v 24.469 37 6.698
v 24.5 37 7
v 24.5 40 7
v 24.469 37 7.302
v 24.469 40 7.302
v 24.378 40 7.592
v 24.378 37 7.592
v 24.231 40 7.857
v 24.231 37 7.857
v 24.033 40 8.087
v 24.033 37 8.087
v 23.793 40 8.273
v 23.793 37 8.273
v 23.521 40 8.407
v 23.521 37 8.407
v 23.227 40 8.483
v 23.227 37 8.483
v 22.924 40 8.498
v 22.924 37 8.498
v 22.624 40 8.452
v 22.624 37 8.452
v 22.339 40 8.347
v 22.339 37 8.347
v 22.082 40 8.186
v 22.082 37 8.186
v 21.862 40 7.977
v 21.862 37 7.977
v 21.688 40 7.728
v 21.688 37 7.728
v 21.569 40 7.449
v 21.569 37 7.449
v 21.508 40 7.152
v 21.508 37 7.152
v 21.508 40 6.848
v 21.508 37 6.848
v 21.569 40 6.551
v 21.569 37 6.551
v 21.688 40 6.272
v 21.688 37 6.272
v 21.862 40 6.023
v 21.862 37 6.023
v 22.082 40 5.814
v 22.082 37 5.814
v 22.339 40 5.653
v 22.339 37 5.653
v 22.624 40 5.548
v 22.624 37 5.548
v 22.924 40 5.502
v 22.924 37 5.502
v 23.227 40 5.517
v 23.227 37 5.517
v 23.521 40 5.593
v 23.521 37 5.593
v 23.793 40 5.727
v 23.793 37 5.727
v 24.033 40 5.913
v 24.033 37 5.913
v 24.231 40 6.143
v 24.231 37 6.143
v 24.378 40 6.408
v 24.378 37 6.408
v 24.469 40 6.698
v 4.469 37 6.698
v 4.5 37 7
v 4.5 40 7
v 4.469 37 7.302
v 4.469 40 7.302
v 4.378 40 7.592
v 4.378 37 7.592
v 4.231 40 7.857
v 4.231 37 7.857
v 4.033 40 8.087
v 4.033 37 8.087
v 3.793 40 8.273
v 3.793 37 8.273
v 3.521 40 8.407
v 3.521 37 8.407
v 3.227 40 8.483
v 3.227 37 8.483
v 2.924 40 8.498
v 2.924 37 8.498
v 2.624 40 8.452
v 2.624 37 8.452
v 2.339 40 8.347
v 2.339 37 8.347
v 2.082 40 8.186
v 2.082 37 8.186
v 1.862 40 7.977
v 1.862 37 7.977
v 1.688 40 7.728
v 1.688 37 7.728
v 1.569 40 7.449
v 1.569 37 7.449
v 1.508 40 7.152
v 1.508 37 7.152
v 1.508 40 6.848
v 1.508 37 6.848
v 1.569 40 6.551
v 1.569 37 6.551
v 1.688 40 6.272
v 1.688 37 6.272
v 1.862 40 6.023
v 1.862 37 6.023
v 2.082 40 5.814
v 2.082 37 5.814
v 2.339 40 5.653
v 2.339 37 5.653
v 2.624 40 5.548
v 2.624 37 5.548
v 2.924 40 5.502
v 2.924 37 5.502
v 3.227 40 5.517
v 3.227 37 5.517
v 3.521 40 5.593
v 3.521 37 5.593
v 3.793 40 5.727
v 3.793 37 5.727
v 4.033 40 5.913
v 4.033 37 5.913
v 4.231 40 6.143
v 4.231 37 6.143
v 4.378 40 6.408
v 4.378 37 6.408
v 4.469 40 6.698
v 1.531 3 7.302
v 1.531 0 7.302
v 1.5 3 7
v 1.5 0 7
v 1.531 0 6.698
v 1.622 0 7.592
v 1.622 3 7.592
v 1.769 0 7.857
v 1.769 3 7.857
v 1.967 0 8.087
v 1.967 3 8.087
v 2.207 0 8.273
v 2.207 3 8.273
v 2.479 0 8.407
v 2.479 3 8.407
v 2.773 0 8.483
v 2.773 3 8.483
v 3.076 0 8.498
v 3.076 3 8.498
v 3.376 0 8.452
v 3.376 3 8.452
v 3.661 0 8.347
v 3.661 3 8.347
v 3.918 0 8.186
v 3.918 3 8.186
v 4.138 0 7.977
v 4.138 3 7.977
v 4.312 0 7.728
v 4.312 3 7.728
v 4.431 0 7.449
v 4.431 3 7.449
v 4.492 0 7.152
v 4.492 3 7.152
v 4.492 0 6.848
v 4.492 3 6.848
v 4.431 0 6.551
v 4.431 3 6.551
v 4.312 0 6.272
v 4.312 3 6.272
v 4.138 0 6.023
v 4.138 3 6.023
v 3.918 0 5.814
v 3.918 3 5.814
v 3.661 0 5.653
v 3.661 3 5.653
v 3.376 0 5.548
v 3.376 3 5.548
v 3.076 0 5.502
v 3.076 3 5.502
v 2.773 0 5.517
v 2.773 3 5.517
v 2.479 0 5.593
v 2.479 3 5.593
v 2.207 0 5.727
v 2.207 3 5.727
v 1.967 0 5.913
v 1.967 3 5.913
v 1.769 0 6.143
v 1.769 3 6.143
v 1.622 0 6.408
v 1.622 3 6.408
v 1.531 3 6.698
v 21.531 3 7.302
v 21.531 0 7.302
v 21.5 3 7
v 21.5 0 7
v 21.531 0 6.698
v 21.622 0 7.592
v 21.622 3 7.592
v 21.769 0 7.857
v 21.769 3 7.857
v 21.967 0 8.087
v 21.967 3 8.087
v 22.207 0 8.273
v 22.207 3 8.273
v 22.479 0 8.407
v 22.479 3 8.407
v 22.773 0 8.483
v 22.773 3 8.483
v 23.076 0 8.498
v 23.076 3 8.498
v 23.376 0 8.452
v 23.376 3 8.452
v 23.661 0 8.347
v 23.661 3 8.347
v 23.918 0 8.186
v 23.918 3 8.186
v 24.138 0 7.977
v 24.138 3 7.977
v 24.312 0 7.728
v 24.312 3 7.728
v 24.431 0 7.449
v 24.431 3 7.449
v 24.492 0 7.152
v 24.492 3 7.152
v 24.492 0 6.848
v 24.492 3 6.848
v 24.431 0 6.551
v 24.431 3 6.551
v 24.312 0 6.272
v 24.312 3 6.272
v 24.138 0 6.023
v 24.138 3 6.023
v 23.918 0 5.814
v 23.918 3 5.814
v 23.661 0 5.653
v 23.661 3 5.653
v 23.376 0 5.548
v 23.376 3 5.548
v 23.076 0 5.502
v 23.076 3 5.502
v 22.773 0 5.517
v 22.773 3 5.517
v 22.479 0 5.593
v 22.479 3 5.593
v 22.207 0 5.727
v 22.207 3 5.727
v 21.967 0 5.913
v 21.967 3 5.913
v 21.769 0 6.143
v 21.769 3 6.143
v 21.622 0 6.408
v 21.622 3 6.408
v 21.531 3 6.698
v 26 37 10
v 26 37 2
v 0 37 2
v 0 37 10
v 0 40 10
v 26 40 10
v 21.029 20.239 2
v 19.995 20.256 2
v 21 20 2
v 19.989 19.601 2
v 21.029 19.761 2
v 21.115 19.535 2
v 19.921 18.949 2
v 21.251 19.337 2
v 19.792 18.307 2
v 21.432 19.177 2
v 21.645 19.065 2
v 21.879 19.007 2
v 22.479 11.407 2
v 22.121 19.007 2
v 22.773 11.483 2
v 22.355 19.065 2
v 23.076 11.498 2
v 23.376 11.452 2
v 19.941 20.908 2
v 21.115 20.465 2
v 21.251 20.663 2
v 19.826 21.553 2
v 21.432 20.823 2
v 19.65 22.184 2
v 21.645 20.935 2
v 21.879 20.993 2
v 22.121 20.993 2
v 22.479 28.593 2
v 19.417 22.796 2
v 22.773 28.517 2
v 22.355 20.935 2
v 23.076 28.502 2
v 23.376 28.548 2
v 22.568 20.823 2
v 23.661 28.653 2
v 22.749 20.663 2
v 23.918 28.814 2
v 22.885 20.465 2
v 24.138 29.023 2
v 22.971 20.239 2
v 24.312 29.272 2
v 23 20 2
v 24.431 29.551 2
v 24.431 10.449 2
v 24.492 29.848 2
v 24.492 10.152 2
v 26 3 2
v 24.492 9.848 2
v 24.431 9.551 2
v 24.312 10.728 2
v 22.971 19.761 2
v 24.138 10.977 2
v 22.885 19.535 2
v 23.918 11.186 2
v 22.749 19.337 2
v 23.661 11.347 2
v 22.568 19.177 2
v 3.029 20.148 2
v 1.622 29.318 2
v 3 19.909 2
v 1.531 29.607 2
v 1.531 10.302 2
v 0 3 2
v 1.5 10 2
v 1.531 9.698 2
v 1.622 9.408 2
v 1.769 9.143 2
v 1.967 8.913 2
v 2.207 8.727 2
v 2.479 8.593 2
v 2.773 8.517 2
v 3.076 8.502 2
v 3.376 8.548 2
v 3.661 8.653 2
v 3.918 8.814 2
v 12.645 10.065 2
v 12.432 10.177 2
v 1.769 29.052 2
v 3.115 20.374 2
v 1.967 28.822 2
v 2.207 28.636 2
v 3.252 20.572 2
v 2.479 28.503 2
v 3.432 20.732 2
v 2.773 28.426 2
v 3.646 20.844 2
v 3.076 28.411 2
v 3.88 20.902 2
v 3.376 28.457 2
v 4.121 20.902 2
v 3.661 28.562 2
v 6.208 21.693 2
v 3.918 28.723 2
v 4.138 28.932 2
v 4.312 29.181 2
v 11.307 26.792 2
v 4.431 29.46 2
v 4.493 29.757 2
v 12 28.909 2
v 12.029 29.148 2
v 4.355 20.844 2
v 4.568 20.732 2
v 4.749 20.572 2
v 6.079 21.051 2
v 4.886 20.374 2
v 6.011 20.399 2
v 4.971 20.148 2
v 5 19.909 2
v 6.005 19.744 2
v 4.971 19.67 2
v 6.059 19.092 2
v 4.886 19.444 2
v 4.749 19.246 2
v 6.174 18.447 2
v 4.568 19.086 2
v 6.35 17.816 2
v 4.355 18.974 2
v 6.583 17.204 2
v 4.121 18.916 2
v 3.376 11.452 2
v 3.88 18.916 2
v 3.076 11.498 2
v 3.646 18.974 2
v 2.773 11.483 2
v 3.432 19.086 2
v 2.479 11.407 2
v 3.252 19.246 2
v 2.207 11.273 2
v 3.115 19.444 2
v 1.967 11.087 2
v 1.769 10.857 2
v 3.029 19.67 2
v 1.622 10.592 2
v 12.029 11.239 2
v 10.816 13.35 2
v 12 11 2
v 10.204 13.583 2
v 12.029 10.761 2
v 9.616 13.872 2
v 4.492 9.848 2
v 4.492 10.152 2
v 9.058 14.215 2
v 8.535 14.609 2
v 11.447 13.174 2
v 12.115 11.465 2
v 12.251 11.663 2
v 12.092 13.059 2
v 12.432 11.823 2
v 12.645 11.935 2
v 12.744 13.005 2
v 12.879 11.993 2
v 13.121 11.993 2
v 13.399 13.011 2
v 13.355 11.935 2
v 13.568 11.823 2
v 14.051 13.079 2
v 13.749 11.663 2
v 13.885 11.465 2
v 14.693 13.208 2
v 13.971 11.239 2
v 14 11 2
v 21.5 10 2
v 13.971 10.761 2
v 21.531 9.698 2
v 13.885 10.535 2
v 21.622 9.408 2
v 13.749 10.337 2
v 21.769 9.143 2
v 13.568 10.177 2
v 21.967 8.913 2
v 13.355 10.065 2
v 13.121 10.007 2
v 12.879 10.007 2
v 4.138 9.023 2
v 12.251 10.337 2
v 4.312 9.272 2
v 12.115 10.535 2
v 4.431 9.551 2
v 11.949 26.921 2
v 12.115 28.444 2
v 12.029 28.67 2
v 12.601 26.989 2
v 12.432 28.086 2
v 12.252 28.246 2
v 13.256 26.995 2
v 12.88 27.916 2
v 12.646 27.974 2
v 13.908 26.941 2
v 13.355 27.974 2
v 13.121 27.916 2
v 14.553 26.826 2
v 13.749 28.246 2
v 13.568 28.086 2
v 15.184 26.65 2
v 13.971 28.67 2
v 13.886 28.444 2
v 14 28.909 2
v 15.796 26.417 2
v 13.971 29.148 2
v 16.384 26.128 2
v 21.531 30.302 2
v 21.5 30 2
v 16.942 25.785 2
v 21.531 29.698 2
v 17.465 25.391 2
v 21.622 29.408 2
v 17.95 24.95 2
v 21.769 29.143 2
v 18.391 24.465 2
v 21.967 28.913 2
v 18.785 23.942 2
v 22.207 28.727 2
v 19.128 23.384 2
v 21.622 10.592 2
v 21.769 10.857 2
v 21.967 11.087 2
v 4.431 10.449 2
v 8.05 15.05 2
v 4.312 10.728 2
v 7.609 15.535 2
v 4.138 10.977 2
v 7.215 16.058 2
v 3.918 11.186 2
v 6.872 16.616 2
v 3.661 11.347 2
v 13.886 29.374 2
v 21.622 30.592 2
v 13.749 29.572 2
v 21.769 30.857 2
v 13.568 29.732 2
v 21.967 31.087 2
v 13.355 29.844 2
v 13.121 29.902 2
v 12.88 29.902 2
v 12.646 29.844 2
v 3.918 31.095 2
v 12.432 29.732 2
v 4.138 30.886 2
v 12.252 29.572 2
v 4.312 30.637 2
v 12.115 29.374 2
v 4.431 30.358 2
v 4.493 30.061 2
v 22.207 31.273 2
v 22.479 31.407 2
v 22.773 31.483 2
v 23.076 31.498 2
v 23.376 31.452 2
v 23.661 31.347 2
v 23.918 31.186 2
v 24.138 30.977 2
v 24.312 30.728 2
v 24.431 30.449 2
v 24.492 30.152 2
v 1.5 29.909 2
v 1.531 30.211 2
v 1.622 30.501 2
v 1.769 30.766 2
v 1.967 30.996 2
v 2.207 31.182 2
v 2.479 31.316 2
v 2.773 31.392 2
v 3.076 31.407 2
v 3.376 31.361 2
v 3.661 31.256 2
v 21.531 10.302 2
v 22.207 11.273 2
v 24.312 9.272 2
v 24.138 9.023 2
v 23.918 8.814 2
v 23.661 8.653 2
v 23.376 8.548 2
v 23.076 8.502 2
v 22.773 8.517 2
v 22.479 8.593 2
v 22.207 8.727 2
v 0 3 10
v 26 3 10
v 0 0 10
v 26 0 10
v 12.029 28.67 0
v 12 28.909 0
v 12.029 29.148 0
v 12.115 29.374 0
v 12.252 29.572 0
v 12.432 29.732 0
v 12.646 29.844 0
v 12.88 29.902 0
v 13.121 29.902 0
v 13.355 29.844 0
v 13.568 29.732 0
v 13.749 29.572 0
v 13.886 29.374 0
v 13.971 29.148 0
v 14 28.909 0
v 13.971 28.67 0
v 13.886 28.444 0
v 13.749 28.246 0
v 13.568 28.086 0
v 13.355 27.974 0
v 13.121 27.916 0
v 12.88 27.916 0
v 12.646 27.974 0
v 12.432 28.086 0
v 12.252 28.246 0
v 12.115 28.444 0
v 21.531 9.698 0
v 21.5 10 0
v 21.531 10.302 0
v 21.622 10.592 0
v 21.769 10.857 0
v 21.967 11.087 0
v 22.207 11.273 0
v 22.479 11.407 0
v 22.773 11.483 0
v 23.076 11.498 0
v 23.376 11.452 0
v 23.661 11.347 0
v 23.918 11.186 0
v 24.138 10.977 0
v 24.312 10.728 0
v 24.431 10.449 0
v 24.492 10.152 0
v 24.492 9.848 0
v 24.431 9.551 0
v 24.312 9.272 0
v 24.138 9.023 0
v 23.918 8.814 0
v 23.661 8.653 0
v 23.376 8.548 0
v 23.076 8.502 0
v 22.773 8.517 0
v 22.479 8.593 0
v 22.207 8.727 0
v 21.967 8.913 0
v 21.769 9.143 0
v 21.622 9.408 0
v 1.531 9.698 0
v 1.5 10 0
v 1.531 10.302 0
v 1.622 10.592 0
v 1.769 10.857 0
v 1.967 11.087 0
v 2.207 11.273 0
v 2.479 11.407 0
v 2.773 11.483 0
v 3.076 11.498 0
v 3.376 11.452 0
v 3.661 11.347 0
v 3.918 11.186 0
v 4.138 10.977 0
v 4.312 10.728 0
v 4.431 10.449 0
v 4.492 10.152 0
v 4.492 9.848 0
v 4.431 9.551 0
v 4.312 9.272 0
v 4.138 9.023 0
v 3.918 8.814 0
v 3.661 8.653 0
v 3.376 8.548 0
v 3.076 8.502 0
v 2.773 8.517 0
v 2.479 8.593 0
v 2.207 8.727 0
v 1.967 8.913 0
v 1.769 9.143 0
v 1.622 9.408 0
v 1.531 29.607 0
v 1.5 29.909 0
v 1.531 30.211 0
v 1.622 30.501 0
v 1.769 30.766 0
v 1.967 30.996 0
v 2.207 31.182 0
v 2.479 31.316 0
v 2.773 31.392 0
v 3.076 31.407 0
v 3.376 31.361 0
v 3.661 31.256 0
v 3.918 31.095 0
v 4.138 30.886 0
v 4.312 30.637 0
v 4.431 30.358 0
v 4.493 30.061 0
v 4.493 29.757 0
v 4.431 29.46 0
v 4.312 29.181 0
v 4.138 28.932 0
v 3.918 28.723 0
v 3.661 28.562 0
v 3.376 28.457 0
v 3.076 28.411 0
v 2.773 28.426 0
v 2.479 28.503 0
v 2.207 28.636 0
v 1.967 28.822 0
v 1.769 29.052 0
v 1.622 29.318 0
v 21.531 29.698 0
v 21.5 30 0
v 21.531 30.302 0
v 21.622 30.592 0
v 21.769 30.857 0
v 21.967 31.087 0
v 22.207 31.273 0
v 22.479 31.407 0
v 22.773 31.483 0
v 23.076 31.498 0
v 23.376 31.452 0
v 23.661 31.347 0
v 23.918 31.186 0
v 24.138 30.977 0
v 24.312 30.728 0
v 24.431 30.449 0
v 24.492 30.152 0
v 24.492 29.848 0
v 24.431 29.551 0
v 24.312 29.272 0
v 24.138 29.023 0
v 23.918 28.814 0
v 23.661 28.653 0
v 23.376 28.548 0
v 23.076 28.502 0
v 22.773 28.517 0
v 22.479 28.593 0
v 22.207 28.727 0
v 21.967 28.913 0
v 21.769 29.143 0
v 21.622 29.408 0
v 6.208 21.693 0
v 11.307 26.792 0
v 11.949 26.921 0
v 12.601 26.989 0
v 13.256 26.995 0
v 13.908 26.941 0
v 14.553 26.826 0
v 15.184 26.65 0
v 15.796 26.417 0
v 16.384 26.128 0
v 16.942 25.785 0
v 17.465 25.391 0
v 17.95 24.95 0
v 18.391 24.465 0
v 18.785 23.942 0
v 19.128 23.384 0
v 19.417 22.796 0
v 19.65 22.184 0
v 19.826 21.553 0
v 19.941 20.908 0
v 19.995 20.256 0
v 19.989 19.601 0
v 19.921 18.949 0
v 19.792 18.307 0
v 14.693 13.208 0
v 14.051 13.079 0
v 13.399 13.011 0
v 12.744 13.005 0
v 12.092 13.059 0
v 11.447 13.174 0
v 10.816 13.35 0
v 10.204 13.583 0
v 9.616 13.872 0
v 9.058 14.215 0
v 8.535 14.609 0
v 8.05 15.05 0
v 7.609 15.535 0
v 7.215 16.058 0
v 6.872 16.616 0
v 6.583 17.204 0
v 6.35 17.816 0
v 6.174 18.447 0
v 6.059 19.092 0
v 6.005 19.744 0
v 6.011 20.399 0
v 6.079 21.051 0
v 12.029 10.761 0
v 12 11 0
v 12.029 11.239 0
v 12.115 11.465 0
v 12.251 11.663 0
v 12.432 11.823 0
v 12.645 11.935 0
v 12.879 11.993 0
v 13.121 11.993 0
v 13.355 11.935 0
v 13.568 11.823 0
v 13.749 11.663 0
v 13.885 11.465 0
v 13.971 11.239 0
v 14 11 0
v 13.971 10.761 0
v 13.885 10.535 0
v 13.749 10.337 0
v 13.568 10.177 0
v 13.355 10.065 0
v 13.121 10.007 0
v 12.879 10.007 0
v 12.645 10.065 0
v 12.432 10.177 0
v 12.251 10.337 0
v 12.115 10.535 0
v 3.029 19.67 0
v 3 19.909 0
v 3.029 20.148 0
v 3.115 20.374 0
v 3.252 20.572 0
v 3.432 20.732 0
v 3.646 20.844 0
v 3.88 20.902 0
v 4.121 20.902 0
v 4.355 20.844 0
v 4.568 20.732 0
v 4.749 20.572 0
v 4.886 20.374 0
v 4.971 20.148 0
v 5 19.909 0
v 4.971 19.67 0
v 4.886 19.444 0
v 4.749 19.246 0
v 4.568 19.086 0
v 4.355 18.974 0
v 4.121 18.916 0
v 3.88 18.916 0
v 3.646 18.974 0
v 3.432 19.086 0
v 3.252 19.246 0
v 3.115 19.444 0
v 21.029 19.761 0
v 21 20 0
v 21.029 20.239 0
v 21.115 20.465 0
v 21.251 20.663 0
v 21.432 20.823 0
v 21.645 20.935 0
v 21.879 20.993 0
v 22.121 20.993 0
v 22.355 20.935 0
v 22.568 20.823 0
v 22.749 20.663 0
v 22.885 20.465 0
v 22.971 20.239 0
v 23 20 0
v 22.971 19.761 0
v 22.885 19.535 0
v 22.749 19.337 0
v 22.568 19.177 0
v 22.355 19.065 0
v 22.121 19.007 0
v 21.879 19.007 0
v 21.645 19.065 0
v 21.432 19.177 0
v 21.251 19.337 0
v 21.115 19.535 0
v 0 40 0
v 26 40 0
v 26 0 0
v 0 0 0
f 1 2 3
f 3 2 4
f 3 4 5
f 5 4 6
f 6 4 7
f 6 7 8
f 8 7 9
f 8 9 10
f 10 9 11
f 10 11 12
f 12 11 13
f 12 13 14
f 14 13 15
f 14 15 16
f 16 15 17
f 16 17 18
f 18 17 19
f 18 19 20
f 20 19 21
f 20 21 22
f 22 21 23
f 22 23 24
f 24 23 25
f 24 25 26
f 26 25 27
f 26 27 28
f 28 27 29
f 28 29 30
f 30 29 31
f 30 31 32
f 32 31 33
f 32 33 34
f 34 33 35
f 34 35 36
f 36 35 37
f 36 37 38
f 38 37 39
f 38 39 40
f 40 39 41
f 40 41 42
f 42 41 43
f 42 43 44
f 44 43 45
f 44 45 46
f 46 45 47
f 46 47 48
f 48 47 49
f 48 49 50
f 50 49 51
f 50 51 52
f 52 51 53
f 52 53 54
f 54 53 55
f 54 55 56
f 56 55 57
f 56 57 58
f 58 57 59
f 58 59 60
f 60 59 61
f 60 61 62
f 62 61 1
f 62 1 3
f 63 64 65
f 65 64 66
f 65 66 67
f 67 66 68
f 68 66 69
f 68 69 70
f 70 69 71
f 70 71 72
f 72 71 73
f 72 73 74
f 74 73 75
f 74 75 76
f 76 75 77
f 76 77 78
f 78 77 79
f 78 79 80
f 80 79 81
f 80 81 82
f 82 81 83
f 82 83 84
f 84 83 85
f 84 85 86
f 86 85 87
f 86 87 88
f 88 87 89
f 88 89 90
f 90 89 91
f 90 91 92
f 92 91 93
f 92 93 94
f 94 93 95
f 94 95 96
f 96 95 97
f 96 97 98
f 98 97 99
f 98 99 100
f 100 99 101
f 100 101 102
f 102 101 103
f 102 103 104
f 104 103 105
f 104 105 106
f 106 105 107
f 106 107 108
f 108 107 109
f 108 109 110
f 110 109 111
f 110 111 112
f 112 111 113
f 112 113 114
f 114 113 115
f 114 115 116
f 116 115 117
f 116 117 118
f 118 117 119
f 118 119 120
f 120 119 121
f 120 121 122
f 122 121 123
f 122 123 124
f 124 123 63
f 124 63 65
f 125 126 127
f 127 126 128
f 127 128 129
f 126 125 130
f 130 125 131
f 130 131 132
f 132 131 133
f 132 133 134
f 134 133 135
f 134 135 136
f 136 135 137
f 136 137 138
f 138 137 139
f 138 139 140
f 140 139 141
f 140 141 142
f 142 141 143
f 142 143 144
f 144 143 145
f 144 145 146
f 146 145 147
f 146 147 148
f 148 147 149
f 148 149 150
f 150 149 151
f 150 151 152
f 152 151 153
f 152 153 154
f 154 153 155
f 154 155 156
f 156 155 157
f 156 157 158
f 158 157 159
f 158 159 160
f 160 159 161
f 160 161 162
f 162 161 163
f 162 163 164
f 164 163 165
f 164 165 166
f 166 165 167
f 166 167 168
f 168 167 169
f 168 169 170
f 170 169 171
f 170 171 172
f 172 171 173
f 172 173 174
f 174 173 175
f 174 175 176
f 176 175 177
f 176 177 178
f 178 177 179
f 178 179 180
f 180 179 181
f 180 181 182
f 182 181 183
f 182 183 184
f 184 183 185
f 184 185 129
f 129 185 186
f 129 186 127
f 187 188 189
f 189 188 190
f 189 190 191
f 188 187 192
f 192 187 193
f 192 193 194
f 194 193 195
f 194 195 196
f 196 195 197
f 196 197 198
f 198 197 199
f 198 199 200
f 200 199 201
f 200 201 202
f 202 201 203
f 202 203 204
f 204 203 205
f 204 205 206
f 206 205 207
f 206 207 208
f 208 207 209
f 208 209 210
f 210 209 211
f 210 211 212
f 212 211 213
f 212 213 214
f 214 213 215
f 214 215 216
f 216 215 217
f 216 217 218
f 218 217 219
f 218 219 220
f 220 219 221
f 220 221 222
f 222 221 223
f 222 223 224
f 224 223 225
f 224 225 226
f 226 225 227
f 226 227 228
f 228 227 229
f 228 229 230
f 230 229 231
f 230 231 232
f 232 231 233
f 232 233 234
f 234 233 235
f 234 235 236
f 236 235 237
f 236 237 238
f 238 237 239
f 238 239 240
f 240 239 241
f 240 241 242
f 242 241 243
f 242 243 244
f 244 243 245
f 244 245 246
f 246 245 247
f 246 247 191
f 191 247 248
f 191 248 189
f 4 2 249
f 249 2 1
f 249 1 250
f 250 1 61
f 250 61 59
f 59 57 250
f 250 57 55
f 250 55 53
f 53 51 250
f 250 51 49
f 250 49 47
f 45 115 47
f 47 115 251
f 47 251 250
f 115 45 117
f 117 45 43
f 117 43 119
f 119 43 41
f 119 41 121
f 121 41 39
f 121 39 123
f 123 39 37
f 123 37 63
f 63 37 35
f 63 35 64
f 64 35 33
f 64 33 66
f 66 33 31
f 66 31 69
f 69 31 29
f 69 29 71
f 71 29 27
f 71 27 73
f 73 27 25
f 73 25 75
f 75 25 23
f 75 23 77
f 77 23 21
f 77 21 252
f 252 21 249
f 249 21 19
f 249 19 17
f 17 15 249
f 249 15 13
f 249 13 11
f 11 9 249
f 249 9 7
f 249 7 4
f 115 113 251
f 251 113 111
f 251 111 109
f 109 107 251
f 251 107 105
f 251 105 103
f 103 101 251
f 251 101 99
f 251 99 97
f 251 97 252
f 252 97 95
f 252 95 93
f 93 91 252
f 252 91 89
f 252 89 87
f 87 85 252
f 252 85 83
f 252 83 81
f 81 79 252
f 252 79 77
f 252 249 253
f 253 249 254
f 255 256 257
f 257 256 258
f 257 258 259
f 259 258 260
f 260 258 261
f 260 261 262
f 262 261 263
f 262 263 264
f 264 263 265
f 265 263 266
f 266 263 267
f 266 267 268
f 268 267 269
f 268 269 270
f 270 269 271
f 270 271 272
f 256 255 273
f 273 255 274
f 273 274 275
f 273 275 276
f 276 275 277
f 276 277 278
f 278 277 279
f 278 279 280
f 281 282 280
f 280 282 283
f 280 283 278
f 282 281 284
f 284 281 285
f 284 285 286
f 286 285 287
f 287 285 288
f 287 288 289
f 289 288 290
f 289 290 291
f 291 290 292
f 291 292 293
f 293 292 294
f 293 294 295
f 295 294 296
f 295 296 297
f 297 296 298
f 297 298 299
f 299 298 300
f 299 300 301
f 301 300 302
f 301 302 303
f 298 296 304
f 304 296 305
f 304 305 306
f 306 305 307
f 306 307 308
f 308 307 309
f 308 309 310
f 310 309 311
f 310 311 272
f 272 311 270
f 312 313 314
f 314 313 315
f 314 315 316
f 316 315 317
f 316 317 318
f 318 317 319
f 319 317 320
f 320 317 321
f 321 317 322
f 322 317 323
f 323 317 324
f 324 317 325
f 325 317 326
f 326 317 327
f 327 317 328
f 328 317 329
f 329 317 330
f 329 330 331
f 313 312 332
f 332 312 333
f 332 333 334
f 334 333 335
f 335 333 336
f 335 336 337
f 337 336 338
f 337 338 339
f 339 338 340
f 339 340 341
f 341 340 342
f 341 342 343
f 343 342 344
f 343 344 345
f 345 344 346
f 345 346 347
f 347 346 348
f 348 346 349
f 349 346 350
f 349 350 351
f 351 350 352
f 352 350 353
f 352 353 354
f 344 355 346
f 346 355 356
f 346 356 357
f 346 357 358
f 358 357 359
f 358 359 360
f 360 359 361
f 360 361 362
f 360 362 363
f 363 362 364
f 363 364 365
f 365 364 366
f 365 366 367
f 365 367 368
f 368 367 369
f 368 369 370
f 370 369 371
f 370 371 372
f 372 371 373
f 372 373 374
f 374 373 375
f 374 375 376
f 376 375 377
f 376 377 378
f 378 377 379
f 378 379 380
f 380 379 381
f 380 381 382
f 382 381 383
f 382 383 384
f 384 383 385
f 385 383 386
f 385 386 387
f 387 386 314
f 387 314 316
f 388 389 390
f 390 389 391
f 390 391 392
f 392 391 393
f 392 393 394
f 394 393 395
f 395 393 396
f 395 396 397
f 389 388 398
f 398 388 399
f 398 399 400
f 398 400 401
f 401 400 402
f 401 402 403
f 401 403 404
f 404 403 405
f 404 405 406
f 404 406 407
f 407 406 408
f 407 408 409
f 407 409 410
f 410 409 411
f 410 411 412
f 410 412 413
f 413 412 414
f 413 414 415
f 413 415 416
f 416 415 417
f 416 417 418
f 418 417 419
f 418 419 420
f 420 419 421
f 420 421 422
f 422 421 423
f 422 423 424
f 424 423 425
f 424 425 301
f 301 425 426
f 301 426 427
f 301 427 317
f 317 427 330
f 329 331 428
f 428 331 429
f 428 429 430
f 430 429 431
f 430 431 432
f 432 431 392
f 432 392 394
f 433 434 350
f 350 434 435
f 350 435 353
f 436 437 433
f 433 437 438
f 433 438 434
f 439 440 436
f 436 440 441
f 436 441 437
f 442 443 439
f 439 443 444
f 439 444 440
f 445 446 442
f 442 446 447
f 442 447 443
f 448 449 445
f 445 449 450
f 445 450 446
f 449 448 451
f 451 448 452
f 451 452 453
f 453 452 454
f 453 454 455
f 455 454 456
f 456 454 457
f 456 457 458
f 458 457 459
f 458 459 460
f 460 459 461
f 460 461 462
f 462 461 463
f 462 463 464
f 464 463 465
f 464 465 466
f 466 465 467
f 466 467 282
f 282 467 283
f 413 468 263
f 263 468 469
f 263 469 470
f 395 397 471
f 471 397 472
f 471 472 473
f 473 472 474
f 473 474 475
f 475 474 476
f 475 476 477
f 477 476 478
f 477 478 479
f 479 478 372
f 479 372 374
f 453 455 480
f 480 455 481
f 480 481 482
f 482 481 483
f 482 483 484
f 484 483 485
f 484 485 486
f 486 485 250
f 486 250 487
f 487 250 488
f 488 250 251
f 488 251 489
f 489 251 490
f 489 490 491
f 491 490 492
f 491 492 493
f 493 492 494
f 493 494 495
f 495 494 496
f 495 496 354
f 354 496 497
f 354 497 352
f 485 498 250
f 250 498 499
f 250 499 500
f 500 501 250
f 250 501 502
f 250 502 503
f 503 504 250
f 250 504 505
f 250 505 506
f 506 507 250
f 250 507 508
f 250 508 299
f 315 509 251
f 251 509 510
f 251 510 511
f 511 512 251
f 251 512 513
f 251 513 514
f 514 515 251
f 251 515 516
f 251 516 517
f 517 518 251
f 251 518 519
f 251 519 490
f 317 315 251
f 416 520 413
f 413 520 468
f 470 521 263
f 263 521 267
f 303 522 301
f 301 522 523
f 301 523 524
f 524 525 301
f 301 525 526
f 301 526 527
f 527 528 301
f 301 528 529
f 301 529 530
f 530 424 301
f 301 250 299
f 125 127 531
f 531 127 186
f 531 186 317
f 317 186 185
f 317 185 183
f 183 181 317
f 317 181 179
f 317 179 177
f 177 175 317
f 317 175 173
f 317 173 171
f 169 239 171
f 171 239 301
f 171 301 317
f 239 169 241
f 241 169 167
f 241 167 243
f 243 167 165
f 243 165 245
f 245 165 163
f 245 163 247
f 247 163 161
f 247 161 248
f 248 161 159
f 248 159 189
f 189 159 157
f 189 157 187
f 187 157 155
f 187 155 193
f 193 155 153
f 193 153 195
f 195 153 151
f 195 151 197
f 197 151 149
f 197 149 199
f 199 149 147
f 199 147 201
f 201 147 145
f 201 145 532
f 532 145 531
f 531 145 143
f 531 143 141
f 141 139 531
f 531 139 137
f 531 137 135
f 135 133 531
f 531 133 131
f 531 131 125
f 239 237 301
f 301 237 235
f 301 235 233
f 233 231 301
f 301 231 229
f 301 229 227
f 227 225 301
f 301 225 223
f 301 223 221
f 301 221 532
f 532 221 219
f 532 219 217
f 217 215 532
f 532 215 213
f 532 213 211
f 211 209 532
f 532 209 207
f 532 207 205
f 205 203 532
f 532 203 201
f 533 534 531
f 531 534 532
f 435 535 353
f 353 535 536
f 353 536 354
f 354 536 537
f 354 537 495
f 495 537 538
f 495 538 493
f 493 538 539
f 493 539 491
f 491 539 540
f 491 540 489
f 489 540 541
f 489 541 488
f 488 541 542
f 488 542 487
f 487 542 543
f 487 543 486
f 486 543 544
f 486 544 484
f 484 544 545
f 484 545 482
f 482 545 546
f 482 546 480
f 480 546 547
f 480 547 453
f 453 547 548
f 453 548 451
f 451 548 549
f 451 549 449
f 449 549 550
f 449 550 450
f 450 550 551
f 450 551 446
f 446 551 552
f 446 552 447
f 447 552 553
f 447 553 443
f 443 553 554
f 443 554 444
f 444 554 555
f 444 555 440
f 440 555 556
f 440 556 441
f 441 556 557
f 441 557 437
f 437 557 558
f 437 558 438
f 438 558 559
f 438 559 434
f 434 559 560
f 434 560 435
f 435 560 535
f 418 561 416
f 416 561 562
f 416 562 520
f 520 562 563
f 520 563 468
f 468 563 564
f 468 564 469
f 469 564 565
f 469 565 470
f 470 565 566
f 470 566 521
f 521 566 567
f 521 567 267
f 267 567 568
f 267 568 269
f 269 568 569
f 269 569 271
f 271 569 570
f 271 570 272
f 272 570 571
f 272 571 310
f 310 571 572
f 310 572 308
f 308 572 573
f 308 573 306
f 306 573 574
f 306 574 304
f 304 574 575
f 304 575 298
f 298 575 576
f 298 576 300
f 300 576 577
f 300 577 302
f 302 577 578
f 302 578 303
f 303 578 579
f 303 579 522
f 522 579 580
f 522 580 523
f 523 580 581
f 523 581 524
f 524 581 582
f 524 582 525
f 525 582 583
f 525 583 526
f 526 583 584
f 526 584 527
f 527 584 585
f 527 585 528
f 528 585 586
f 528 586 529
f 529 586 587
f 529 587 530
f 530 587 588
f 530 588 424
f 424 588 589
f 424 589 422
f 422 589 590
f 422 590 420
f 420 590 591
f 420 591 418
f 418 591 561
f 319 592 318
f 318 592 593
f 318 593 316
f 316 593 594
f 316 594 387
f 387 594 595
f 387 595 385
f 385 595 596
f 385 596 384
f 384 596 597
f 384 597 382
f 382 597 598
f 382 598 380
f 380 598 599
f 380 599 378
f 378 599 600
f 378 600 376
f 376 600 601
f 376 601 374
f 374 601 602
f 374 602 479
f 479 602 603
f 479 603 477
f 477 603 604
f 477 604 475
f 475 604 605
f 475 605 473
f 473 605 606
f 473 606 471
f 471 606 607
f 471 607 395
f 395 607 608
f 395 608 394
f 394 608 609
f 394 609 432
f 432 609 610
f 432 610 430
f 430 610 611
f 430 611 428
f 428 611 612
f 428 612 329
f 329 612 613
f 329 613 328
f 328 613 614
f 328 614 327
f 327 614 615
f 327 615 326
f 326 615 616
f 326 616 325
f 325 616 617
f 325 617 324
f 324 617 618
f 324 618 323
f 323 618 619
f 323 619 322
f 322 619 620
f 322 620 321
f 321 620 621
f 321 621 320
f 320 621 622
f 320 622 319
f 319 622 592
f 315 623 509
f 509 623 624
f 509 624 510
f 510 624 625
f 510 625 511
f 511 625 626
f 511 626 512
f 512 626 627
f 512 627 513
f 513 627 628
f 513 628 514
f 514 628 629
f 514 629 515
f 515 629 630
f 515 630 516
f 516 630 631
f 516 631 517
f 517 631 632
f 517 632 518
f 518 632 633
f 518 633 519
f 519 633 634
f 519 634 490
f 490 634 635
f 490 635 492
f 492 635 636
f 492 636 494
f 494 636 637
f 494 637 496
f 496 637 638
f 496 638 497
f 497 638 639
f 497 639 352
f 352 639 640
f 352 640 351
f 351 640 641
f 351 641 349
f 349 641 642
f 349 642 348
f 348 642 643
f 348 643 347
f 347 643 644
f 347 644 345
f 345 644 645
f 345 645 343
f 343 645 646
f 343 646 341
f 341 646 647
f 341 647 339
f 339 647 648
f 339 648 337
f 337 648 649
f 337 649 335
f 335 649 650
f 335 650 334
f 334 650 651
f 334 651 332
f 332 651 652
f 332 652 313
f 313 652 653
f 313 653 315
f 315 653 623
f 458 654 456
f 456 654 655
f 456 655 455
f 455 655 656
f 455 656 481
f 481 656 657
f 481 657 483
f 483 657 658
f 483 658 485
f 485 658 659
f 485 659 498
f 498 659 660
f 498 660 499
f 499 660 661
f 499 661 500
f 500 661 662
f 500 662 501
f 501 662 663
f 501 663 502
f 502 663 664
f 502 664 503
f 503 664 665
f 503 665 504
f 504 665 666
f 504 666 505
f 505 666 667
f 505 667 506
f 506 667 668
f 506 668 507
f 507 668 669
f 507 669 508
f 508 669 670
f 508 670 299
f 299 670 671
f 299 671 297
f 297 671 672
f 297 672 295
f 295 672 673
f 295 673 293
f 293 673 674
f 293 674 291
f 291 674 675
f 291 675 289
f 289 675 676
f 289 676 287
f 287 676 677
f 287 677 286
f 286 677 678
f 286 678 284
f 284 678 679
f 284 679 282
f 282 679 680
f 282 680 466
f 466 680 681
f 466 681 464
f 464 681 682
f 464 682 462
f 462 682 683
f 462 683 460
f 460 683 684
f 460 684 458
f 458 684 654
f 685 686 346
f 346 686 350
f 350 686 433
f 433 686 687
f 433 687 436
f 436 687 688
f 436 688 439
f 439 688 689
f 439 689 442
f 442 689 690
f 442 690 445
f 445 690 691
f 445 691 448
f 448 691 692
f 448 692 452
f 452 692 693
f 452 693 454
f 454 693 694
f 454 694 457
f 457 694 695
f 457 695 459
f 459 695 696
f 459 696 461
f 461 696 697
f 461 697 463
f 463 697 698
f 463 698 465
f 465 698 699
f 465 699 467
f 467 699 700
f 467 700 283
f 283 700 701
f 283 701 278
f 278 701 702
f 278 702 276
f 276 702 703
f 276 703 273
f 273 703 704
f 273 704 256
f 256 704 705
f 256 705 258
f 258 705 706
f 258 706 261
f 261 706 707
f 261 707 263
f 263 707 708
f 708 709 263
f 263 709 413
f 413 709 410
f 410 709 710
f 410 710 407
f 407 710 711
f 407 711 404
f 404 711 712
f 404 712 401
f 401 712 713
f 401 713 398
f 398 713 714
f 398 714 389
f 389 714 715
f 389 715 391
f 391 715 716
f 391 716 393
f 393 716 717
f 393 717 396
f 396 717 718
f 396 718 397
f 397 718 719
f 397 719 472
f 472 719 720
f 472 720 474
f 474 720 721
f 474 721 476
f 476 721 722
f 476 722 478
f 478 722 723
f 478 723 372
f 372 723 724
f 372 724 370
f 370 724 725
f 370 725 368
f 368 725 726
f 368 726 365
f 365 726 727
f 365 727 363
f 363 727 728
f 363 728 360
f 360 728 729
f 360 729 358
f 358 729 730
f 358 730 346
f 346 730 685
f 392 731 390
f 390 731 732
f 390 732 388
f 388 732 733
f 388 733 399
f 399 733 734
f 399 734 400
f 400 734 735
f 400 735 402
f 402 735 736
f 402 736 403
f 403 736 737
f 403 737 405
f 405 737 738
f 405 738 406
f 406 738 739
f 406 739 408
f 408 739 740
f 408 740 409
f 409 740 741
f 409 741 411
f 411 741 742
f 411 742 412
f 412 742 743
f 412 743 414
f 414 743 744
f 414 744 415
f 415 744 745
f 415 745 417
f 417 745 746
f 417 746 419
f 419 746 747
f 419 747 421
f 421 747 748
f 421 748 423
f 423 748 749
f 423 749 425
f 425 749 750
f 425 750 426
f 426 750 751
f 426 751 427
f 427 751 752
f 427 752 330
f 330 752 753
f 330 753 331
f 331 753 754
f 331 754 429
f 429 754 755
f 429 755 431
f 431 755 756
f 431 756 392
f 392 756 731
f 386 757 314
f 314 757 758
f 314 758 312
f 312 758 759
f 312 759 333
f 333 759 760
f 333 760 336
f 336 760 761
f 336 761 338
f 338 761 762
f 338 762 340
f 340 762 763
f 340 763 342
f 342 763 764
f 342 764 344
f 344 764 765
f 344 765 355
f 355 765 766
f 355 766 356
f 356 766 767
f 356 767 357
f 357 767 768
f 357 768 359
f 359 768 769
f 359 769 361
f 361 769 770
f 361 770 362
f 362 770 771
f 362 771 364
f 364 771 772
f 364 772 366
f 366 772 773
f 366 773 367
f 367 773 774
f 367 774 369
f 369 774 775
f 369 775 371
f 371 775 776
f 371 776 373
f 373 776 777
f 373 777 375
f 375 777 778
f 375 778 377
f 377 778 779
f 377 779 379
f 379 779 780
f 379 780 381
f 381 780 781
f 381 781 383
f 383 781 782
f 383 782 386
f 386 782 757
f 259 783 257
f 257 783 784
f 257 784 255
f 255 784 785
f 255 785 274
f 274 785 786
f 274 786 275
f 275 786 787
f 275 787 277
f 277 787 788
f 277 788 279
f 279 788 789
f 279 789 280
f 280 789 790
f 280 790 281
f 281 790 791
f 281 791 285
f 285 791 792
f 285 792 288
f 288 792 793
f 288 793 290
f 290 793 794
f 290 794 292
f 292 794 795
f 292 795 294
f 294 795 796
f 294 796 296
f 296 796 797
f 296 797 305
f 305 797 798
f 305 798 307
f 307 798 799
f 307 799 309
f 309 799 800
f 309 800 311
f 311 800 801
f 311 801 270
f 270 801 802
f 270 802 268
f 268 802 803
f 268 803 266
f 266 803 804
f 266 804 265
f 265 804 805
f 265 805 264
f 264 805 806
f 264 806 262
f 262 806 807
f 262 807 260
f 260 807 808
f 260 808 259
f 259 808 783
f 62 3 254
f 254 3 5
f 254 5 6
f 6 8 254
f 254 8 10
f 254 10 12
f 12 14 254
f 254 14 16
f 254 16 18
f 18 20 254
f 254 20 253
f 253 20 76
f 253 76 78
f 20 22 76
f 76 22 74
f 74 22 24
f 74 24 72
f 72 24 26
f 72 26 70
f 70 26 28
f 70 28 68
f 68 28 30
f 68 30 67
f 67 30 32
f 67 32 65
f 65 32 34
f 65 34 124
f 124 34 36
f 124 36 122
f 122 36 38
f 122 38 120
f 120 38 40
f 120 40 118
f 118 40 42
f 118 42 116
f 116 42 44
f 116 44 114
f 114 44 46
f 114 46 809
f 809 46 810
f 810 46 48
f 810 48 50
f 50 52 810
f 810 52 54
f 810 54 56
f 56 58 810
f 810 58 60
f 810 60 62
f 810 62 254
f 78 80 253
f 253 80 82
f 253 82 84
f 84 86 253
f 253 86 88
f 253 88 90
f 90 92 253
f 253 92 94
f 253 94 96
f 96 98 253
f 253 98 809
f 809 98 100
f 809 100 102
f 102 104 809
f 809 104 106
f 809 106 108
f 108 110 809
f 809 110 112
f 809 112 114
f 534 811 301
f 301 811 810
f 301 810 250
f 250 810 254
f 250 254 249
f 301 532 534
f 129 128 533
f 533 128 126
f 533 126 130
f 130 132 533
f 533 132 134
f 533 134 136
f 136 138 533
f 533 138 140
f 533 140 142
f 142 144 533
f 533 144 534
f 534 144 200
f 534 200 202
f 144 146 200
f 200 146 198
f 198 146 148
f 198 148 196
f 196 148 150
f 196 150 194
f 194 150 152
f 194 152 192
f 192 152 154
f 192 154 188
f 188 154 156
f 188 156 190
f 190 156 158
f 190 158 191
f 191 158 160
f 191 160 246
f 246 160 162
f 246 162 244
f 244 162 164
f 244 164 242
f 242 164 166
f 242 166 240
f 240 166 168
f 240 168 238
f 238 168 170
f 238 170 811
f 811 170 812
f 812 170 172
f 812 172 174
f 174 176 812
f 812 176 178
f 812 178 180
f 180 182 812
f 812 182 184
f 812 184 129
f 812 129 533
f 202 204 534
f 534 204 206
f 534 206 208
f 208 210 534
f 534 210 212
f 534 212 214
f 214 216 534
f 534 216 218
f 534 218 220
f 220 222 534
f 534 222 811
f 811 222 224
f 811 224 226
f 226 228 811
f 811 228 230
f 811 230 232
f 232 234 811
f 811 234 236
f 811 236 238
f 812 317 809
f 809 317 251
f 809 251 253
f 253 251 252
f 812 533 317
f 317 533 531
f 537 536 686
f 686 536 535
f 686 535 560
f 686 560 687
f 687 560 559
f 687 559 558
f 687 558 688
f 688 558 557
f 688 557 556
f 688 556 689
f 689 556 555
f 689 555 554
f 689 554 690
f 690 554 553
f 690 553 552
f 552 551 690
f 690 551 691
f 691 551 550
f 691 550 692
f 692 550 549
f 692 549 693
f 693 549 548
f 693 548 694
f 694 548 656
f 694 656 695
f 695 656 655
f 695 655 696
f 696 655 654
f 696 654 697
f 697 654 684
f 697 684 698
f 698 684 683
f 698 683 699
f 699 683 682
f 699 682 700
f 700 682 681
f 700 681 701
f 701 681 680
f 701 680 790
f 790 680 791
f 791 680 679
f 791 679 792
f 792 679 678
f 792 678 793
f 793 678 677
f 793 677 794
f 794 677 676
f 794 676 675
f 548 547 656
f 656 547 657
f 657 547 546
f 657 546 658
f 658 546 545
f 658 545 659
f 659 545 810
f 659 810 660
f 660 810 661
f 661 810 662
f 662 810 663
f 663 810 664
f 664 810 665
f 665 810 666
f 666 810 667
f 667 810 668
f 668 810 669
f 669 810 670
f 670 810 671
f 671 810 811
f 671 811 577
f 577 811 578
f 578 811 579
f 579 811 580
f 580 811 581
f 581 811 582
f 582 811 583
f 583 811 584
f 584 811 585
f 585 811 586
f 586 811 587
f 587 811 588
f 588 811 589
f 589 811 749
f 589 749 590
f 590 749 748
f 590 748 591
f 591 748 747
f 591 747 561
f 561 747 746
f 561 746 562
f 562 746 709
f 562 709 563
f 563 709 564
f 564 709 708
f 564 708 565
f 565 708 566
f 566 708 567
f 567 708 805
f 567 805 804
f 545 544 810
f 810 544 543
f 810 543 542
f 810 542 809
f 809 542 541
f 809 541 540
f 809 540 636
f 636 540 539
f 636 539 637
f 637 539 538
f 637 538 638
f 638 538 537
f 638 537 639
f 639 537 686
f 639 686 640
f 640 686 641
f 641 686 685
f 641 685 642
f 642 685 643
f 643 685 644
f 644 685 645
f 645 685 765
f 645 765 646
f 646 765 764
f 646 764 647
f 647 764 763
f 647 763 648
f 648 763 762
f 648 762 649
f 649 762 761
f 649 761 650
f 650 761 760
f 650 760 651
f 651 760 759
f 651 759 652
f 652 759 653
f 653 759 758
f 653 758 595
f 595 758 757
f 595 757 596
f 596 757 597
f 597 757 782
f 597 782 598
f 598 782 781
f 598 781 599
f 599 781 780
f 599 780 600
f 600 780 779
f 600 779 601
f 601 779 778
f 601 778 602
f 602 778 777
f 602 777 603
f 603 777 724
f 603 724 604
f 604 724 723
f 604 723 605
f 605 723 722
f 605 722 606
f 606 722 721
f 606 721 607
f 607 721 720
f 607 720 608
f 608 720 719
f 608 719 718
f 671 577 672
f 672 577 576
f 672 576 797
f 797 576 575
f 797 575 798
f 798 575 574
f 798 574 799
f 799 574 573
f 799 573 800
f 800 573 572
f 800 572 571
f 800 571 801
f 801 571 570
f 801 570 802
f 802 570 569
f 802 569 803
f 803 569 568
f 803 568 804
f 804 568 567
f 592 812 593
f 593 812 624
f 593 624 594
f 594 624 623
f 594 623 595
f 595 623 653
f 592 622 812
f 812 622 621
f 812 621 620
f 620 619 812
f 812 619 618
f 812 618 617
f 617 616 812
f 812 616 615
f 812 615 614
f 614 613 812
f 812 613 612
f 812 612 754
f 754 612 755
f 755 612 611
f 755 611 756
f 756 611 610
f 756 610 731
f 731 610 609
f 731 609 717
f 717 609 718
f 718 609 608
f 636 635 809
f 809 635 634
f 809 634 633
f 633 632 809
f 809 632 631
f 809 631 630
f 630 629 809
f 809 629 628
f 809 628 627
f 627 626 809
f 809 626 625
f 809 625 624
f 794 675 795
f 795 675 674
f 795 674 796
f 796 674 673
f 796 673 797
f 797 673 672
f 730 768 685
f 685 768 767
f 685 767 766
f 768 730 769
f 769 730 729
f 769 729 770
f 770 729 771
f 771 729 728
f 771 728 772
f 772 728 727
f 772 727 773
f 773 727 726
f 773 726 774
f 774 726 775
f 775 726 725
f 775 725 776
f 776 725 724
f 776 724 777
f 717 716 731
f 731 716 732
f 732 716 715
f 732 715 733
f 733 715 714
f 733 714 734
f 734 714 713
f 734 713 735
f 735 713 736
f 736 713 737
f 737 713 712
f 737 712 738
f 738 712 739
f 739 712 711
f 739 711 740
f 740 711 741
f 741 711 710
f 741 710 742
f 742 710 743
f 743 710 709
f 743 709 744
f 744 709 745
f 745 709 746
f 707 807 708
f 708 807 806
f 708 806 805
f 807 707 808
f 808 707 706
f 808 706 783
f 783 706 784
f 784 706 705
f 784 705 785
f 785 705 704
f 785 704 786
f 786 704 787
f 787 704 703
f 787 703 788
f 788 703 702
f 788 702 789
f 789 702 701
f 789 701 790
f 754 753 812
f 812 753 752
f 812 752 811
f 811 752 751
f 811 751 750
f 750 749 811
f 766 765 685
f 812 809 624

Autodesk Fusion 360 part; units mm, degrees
sketch "Sketch1" plane through (0, 0, 0) normal (0, 0, 1) x (1, 0, 0)
  line L0 (0, 0) -> (26, 0)
  line L1 (26, 0) -> (26, 40)
  line L2 (26, 40) -> (0, 40)
  line L3 (0, 40) -> (0, 0)
  dimension "d1" = 26
  dimension "d2" = 40
sketch "Sketch2" plane through (0, 0, 0) normal (0, 0, 1) x (1, 0, 0)
  circle A0 centre (23, 10) radius 1.5
  circle A1 centre (3, 10) radius 1.5
  line L0 (26, 0) -> (26, 40)
  circle A2 centre (23, 30) radius 1.5
  circle A3 centre (3.0002, 29.9091) radius 1.5
  line L1 (26, 40) -> (0, 40)
  circle A4 centre (13.0002, 28.9091) radius 1
  circle A5 centre (4.0002, 19.9091) radius 1
  circle A6 centre (13, 11) radius 1
  circle A7 centre (22, 20) radius 1
  line L2 (6.2078, 21.6931) -> (11.3069, 26.7922)
  arc A8 (6.2078, 21.6931) -> (14.6931, 13.2078) centre (13, 20) ccw
  arc A9 (19.7922, 18.3069) -> (11.3069, 26.7922) centre (13, 20) ccw
  line L3 (19.7922, 18.3069) -> (14.6931, 13.2078)
  dimension "d3" = 3
  dimension "d4" = 3
  dimension "d5" = 3
  dimension "d6" = 20
  dimension "d7" = 3
  dimension "d8" = 3
  dimension "d9" = 20
  dimension "d10" = 3
  dimension "d11" = 20
  dimension "d12" = 10
  dimension "d14" = 10
  dimension "d15" = 1
  dimension "d16" = 2
  dimension "d17" = 2
  dimension "d18" = 2
  dimension "d19" = 10
  dimension "d20" = 1
  dimension "d21" = 10
  dimension "d22" = 1
  dimension "d24" = 10
  dimension "d25" = 1
extrude "Extrude1" add sketch "Sketch1" along normal blind 2
extrude "Extrude2" cut sketch "Sketch2" along normal blind 2
sketch "Sketch3" plane through (0, 0, 2) normal (0, 0, 1) x (-1, 0, 0)
  circle A0 centre (-13.0002, -28.9091) radius 1
  circle A1 centre (-23, -10) radius 1.5
  circle A2 centre (-3, -10) radius 1.5
  circle A3 centre (-3.0002, -29.9091) radius 1.5
  circle A4 centre (-23, -30) radius 1.5
  line L0 (-6.2078, -21.6931) -> (-11.3069, -26.7922)
  arc A5 (-19.7922, -18.3069) -> (-11.3069, -26.7922) centre (-13, -20) ccw
  line L1 (-19.7922, -18.3069) -> (-14.6931, -13.2078)
  arc A6 (-6.2078, -21.6931) -> (-14.6931, -13.2078) centre (-13, -20) ccw
  circle A7 centre (-13, -11) radius 1
  circle A8 centre (-4.0002, -19.9091) radius 1
  circle A9 centre (-22, -20) radius 1
  line L2 (0, -40) -> (0, 0)
  line L3 (0, 0) -> (-26, 0)
  line L4 (-26, 0) -> (-26, -40)
  line L5 (-26, -40) -> (0, -40)
  line L6 (0, 0) -> (-26, 0)
  line L7 (-26, 0) -> (-26, -3)
  line L8 (-26, -3) -> (0, -3)
  line L9 (0, -3) -> (0, 0)
  line L10 (0, -40) -> (-26, -40)
  line L11 (-26, -40) -> (-26, -37)
  line L12 (-26, -37) -> (0, -37)
  line L13 (0, -37) -> (0, -40)
extrude "Extrude3" add sketch "Sketch3" along normal blind 8 contours L2 L4 L5 L10 L11 L12 L13 | L2 L3 L4 L6 L7 L8 L9
sketch "Sketch4" plane through (0, 0, 0) normal (0, -1, 0) x (1, 0, 0)
  line L0 (0, 0) -> (26, 0)
  line L1 (26, 0) -> (26, 10)
  line L2 (26, 10) -> (0, 10)
  line L3 (0, 10) -> (0, 0)
  circle A0 centre (23, 7) radius 1.5
  circle A1 centre (3, 7) radius 1.5
  dimension "d41" = 3
  dimension "d42" = 3
  dimension "d43" = 3
  dimension "d44" = 3
  dimension "d45" = 20
extrude "Extrude4" cut sketch "Sketch4" against normal blind 3 contours A0 | A1
sketch "Sketch5" plane through (0, 40, 0) normal (0, 1, 0) x (-1, 0, 0)
  line L0 (-26, 0) -> (0, 0)
  line L1 (0, 0) -> (0, 10)
  line L2 (0, 10) -> (-26, 10)
  line L3 (-26, 10) -> (-26, 0)
  circle A0 centre (-3, 7) radius 1.5
  circle A1 centre (-23, 7) radius 1.5
  dimension "d48" = 3
  dimension "d49" = 3
  dimension "d50" = 20
  dimension "d51" = 3
  dimension "d52" = 3
  dimension "d53" = 3
extrude "Extrude5" cut sketch "Sketch5" against normal blind 3 contours A0 | A1
